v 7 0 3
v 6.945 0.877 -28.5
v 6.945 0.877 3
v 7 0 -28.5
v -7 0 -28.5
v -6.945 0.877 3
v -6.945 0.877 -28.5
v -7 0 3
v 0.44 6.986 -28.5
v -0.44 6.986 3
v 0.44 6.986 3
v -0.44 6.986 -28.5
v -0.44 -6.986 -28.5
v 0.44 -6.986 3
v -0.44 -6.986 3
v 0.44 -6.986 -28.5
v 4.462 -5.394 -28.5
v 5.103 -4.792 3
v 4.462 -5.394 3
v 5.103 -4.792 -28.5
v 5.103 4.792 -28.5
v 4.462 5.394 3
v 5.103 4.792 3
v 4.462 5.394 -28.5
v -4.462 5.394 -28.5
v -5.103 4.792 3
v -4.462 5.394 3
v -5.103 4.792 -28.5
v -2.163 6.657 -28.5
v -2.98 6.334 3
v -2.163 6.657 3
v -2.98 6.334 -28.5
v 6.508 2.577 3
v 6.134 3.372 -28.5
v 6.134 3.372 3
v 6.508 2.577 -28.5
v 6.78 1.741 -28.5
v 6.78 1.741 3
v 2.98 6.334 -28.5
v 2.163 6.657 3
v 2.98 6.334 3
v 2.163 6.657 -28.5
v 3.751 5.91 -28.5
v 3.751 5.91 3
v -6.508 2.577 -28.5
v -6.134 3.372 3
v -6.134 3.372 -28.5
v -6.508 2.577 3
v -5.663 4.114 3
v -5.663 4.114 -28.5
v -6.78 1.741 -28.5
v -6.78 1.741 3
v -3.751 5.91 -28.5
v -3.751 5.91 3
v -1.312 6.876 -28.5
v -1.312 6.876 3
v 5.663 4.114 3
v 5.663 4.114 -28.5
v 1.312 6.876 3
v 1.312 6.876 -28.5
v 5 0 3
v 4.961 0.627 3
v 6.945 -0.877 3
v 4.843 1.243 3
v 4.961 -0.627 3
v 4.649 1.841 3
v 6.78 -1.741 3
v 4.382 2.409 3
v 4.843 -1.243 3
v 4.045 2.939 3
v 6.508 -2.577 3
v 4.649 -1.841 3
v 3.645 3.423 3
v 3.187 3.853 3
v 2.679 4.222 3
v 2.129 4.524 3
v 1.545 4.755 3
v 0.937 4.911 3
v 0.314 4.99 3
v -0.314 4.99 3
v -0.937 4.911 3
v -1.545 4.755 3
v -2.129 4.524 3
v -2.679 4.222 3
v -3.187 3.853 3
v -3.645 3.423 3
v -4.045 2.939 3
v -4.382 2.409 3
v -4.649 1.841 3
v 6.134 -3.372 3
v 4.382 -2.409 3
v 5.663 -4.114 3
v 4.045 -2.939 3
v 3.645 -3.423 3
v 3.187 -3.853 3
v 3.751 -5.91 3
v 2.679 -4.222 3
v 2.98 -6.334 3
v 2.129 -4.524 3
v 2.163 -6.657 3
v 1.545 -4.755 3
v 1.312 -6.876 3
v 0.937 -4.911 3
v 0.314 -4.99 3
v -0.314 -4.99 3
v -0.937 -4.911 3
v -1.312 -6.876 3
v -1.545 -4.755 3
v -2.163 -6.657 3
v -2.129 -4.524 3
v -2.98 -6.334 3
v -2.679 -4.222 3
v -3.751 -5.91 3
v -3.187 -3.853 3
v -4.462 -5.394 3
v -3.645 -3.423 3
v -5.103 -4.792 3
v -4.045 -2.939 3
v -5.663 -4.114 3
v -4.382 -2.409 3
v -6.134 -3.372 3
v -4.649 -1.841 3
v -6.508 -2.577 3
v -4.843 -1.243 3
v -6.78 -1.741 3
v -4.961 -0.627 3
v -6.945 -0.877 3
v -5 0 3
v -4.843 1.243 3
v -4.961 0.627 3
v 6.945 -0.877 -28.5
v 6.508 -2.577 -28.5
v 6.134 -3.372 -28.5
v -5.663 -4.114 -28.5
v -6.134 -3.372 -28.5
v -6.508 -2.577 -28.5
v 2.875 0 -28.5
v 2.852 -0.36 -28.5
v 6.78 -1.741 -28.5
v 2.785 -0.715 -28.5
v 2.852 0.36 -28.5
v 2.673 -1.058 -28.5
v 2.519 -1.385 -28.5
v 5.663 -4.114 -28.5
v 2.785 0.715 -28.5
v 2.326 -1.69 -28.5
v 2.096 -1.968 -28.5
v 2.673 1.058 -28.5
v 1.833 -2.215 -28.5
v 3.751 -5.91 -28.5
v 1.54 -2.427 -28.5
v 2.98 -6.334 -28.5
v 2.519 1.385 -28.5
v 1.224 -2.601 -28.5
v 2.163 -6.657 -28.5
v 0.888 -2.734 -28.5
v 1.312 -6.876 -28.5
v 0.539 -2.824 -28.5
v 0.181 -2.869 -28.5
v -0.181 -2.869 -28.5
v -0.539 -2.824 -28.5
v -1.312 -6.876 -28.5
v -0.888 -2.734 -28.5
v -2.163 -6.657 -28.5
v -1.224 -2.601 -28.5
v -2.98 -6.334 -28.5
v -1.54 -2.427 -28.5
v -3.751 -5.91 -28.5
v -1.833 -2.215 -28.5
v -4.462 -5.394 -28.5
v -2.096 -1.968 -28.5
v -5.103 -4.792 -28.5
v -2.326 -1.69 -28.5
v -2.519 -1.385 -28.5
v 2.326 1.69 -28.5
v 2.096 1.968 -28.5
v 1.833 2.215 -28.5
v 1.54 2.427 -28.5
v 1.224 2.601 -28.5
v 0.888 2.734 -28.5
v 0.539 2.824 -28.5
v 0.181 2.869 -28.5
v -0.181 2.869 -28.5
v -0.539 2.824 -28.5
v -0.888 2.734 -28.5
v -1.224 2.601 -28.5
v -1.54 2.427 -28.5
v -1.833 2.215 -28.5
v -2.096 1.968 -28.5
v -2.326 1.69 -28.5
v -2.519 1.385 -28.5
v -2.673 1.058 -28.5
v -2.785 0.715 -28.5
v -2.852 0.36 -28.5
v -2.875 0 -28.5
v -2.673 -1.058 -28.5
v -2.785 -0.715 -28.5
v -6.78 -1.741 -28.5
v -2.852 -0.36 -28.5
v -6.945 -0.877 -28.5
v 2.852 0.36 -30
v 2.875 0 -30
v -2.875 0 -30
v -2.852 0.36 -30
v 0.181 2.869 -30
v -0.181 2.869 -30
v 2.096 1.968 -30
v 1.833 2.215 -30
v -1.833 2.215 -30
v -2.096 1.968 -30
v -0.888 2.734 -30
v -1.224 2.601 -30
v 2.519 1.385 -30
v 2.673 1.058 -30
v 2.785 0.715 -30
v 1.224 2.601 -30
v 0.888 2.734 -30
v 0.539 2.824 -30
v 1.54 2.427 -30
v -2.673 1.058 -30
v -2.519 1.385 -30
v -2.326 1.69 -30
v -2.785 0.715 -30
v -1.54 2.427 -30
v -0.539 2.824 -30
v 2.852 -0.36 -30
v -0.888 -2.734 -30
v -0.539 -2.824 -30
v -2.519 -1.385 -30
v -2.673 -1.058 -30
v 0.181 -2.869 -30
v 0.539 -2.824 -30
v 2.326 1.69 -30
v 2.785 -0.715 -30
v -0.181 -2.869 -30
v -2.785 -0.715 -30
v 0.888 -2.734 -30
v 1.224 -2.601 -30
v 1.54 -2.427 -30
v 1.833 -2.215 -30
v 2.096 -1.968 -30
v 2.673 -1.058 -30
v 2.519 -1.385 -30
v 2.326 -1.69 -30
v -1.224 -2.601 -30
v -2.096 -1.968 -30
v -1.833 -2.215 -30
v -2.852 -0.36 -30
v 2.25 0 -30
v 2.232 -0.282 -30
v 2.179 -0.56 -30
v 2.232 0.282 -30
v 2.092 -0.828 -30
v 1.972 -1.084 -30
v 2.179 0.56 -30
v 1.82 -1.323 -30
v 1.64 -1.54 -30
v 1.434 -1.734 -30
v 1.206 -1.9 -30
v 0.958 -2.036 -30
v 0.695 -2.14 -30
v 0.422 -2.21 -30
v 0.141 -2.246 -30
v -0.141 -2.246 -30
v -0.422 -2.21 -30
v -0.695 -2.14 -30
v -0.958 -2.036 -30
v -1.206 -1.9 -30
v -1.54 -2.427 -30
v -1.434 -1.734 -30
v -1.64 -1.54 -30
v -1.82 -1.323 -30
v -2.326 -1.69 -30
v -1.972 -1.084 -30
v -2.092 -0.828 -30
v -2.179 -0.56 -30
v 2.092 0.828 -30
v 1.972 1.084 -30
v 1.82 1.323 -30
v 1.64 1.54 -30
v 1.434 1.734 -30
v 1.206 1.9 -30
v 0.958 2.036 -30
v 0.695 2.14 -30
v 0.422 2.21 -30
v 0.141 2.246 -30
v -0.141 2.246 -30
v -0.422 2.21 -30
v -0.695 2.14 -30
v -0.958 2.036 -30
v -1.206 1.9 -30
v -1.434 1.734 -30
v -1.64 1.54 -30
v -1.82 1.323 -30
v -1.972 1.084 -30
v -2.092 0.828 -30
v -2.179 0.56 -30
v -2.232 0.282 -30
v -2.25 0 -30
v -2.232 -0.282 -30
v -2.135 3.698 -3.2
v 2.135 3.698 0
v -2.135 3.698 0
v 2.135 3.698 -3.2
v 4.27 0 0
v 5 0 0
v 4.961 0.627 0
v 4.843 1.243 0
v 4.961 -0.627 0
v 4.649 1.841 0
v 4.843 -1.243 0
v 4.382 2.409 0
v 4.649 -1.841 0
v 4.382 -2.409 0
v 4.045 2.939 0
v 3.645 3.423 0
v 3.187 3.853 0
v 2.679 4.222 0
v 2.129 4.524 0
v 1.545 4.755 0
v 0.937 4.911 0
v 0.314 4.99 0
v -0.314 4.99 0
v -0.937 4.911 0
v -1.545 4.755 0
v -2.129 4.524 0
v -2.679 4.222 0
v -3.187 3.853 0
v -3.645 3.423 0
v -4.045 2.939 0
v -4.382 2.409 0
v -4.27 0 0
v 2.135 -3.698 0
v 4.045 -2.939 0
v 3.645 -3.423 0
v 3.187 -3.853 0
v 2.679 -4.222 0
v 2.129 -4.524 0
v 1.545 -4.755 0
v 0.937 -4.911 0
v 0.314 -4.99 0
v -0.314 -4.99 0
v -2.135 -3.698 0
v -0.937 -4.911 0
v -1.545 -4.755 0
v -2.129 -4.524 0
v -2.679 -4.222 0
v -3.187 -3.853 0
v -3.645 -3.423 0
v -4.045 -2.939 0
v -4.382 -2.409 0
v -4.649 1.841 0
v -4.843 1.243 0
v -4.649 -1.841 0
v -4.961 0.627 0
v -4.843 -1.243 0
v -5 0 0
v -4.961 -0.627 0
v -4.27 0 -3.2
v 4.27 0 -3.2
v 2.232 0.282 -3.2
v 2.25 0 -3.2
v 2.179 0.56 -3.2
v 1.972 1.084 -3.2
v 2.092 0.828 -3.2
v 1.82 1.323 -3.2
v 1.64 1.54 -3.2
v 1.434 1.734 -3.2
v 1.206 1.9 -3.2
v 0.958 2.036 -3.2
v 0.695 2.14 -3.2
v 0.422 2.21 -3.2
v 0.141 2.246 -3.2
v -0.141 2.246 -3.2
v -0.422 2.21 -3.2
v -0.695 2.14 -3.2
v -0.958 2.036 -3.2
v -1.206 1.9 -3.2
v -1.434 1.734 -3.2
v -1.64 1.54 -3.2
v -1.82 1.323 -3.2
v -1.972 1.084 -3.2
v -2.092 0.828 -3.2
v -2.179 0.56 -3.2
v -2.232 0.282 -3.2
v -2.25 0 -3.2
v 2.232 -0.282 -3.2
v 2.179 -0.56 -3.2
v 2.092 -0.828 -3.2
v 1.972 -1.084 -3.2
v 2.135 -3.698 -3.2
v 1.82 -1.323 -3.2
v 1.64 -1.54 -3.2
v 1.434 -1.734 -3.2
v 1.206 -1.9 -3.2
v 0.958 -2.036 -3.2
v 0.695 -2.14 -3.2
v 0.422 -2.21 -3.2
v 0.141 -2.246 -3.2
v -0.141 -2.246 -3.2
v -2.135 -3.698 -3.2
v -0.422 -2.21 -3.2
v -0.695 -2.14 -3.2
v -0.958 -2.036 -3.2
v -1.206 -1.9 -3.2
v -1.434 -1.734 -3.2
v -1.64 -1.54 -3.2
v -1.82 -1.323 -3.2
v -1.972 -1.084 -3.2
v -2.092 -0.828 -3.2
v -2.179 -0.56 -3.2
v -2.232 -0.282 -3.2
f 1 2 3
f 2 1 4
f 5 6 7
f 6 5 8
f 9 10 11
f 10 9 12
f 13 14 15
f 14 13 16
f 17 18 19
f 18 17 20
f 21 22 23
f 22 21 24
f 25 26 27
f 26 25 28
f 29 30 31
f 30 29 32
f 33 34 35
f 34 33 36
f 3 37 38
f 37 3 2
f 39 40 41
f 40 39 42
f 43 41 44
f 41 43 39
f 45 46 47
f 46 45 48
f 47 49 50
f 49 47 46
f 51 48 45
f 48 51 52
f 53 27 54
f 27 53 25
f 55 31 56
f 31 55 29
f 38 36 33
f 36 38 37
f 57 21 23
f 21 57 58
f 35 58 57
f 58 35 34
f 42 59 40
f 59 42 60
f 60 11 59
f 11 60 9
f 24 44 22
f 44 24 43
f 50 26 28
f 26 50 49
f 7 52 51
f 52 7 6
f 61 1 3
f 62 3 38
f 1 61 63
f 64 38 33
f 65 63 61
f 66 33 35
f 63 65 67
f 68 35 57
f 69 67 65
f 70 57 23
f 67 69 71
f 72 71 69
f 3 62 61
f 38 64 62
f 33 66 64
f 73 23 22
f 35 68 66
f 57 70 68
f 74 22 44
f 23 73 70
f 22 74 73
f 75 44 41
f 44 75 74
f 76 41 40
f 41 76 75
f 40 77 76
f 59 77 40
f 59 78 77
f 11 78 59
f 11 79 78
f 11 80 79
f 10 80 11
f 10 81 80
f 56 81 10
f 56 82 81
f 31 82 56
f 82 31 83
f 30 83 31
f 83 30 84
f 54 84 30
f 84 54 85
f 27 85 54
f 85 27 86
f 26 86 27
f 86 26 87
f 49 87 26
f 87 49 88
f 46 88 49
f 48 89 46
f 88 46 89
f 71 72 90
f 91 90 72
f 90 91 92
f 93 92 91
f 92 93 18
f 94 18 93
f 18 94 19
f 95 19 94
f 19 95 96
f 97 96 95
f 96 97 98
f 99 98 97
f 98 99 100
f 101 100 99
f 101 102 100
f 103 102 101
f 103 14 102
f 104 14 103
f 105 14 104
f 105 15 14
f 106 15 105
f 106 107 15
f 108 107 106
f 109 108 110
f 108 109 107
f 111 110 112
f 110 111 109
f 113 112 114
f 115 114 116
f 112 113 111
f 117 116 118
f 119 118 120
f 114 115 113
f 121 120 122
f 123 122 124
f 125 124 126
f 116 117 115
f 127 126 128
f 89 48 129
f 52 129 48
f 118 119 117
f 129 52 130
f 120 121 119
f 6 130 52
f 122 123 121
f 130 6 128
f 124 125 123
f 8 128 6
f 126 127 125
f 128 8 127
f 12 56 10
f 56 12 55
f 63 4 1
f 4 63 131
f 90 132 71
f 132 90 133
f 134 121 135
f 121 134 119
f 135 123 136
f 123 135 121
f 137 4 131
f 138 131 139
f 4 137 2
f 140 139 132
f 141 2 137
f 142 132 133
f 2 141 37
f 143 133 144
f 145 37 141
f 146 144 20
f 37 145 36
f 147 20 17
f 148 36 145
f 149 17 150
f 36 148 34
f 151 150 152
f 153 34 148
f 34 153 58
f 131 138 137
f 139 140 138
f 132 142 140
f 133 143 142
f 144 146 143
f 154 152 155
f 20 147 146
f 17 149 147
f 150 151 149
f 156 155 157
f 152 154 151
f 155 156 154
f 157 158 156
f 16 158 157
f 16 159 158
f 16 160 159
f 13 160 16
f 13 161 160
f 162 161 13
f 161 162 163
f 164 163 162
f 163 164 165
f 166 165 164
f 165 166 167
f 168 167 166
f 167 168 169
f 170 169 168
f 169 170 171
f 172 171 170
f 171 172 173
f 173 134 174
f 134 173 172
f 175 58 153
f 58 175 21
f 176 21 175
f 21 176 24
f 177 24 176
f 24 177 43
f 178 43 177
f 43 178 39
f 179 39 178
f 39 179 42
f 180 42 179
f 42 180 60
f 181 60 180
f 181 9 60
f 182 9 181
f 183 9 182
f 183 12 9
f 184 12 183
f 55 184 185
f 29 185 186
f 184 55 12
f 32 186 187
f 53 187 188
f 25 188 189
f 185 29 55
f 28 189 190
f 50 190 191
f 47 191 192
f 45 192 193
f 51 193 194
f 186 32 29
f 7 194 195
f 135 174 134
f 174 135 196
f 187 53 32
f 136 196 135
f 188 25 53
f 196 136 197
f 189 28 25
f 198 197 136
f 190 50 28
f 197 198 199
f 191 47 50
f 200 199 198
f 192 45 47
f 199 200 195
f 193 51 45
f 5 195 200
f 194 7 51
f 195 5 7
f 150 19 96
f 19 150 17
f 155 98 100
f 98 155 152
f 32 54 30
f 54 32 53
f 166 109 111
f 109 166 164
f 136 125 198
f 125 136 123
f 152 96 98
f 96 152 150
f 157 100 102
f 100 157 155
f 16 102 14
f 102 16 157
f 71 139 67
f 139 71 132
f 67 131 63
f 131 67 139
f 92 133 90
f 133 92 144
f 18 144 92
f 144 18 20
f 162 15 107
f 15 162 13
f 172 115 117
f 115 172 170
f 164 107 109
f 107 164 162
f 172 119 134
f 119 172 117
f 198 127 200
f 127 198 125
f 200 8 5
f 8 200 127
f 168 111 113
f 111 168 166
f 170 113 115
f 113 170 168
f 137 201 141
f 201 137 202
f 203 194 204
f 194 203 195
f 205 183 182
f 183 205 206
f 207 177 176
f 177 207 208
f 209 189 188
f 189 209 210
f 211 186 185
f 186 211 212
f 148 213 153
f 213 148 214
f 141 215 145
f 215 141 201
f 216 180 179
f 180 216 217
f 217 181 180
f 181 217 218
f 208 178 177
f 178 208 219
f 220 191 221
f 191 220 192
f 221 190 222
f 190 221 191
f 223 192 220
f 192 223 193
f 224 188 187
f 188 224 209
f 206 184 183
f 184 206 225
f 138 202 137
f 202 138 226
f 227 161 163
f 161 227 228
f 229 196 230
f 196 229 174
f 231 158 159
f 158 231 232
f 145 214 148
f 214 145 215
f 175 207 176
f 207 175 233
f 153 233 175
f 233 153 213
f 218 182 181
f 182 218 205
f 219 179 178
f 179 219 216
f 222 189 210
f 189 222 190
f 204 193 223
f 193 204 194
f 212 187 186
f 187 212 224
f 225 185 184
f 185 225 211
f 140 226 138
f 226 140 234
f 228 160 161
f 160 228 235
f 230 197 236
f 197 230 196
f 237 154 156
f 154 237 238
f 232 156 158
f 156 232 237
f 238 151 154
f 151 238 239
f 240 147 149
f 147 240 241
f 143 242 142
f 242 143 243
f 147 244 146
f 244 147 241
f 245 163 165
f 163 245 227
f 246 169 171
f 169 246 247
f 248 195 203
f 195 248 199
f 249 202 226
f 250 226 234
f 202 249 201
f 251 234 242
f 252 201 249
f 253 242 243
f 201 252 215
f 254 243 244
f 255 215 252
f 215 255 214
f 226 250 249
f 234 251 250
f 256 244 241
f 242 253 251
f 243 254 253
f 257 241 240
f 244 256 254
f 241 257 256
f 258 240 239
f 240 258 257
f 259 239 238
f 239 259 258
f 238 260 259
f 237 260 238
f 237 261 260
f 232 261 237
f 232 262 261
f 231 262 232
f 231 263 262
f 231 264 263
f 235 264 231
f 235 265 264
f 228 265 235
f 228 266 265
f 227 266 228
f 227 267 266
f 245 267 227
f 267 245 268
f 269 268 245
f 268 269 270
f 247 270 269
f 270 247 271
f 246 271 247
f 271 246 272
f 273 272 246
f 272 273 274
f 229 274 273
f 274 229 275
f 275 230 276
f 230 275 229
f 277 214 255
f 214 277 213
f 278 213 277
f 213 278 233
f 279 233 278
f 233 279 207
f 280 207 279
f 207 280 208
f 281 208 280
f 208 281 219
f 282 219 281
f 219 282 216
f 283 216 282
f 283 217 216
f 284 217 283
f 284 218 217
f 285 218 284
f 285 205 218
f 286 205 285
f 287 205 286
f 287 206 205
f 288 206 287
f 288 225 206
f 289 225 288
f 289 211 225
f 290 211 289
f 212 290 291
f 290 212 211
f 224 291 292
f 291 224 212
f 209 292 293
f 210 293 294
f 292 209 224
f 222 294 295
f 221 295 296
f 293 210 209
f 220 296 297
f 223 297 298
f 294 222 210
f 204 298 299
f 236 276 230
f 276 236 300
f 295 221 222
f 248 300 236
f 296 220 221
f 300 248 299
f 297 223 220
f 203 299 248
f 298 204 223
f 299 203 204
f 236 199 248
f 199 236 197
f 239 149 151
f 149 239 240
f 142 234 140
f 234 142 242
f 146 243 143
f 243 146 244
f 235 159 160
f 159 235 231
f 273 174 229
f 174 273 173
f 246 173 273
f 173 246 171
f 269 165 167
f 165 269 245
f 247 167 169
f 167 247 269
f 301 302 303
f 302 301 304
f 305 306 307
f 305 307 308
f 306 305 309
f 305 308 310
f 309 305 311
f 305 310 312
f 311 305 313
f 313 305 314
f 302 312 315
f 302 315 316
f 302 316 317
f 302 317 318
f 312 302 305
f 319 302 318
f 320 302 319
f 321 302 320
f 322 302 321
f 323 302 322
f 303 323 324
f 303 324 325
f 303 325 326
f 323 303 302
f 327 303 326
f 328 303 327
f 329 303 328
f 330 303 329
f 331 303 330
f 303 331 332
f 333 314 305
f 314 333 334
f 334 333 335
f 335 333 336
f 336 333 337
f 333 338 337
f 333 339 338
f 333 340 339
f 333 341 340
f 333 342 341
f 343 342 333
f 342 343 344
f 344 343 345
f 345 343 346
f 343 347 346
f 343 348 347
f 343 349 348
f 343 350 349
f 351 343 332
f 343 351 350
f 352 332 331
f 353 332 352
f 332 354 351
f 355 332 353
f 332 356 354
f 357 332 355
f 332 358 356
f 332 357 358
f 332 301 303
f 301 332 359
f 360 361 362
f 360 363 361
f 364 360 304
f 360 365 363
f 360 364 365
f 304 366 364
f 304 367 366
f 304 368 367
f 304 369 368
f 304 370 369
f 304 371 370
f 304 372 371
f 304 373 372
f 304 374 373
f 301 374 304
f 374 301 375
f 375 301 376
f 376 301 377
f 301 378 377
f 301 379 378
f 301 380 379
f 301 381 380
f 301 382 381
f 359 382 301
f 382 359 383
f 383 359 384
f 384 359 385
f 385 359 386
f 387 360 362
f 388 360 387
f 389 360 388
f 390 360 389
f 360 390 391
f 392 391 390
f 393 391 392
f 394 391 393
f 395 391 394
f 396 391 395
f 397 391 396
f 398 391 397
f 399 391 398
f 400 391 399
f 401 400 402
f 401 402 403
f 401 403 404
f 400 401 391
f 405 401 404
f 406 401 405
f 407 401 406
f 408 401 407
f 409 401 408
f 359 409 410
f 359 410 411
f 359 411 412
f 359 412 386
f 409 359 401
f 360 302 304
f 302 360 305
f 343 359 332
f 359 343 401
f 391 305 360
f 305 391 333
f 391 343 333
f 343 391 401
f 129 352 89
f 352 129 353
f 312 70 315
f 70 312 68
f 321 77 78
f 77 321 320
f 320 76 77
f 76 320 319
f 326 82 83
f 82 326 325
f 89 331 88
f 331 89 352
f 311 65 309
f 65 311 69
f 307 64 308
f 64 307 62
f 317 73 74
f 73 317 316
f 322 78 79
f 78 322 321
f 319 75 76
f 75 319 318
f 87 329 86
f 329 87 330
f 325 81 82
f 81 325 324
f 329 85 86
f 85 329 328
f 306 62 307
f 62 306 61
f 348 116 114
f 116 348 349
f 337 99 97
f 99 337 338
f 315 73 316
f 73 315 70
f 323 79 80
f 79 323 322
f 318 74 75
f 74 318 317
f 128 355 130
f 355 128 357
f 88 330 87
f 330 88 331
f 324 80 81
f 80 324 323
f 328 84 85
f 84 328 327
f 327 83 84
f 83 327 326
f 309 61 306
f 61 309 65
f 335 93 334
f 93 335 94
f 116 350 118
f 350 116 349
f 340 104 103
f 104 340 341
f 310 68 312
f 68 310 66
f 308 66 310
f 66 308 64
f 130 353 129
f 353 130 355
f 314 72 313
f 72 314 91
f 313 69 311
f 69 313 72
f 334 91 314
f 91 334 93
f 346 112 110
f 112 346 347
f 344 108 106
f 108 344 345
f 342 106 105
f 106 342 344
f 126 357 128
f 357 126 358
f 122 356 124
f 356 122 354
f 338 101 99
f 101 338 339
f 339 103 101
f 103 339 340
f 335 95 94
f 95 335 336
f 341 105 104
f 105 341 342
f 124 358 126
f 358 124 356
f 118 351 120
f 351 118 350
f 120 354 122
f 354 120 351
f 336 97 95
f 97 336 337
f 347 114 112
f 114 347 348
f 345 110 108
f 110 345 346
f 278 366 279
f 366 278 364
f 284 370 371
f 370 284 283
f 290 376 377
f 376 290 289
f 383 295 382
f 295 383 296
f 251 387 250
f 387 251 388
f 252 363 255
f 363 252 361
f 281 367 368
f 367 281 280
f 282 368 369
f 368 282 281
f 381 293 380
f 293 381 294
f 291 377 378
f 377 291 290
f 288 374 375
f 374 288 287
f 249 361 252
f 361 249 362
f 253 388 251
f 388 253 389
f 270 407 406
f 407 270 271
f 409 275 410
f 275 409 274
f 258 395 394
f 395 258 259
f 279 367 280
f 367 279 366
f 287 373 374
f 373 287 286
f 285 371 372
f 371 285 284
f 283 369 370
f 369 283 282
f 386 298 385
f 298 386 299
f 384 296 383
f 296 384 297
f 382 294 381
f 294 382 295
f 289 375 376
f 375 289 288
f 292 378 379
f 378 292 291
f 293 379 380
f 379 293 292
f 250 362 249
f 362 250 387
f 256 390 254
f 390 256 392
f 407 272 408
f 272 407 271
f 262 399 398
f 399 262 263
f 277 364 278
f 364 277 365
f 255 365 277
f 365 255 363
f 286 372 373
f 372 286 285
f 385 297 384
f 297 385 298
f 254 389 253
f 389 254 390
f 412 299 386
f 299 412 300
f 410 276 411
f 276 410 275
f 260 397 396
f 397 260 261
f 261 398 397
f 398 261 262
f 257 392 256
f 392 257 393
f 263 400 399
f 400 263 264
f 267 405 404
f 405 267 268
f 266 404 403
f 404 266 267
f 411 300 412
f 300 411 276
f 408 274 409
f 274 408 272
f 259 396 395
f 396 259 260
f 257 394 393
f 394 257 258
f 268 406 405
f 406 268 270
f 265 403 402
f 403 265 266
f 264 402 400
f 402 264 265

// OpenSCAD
$fn = 50;

difference() {
	union() {
		translate(v = [0, 0, -28.5]) {
			cylinder(h = 31.5, r = 7.0);
		}
		#translate(v = [0, 0, -30.0]) {
			cylinder(h = 30, r = 2.875);
		}
	}
	union() {
		translate(v = [0, 0, 0]) {
			rotate(a = [0, 0, 0]) {
				difference() {
					union() {
						translate(v = [0, 0, -3.2]) {
							linear_extrude(height = 3.2) {
								polygon(points = [[4.2698, 0.0], [2.1349000000000005, 3.697755269078796], [-2.134899999999999, 3.6977552690787965], [-4.2698, 5.228996902999369e-16], [-2.134900000000002, -3.6977552690787956], [2.1348999999999974, -3.697755269078798]]);
							}
						}
					}
					union();
				}
			}
		}
		#cylinder(h = 3, r = 5.0);
		#translate(v = [0, 0, -100.0]) {
			cylinder(h = 200, r = 2.25);
		}
	}
}
